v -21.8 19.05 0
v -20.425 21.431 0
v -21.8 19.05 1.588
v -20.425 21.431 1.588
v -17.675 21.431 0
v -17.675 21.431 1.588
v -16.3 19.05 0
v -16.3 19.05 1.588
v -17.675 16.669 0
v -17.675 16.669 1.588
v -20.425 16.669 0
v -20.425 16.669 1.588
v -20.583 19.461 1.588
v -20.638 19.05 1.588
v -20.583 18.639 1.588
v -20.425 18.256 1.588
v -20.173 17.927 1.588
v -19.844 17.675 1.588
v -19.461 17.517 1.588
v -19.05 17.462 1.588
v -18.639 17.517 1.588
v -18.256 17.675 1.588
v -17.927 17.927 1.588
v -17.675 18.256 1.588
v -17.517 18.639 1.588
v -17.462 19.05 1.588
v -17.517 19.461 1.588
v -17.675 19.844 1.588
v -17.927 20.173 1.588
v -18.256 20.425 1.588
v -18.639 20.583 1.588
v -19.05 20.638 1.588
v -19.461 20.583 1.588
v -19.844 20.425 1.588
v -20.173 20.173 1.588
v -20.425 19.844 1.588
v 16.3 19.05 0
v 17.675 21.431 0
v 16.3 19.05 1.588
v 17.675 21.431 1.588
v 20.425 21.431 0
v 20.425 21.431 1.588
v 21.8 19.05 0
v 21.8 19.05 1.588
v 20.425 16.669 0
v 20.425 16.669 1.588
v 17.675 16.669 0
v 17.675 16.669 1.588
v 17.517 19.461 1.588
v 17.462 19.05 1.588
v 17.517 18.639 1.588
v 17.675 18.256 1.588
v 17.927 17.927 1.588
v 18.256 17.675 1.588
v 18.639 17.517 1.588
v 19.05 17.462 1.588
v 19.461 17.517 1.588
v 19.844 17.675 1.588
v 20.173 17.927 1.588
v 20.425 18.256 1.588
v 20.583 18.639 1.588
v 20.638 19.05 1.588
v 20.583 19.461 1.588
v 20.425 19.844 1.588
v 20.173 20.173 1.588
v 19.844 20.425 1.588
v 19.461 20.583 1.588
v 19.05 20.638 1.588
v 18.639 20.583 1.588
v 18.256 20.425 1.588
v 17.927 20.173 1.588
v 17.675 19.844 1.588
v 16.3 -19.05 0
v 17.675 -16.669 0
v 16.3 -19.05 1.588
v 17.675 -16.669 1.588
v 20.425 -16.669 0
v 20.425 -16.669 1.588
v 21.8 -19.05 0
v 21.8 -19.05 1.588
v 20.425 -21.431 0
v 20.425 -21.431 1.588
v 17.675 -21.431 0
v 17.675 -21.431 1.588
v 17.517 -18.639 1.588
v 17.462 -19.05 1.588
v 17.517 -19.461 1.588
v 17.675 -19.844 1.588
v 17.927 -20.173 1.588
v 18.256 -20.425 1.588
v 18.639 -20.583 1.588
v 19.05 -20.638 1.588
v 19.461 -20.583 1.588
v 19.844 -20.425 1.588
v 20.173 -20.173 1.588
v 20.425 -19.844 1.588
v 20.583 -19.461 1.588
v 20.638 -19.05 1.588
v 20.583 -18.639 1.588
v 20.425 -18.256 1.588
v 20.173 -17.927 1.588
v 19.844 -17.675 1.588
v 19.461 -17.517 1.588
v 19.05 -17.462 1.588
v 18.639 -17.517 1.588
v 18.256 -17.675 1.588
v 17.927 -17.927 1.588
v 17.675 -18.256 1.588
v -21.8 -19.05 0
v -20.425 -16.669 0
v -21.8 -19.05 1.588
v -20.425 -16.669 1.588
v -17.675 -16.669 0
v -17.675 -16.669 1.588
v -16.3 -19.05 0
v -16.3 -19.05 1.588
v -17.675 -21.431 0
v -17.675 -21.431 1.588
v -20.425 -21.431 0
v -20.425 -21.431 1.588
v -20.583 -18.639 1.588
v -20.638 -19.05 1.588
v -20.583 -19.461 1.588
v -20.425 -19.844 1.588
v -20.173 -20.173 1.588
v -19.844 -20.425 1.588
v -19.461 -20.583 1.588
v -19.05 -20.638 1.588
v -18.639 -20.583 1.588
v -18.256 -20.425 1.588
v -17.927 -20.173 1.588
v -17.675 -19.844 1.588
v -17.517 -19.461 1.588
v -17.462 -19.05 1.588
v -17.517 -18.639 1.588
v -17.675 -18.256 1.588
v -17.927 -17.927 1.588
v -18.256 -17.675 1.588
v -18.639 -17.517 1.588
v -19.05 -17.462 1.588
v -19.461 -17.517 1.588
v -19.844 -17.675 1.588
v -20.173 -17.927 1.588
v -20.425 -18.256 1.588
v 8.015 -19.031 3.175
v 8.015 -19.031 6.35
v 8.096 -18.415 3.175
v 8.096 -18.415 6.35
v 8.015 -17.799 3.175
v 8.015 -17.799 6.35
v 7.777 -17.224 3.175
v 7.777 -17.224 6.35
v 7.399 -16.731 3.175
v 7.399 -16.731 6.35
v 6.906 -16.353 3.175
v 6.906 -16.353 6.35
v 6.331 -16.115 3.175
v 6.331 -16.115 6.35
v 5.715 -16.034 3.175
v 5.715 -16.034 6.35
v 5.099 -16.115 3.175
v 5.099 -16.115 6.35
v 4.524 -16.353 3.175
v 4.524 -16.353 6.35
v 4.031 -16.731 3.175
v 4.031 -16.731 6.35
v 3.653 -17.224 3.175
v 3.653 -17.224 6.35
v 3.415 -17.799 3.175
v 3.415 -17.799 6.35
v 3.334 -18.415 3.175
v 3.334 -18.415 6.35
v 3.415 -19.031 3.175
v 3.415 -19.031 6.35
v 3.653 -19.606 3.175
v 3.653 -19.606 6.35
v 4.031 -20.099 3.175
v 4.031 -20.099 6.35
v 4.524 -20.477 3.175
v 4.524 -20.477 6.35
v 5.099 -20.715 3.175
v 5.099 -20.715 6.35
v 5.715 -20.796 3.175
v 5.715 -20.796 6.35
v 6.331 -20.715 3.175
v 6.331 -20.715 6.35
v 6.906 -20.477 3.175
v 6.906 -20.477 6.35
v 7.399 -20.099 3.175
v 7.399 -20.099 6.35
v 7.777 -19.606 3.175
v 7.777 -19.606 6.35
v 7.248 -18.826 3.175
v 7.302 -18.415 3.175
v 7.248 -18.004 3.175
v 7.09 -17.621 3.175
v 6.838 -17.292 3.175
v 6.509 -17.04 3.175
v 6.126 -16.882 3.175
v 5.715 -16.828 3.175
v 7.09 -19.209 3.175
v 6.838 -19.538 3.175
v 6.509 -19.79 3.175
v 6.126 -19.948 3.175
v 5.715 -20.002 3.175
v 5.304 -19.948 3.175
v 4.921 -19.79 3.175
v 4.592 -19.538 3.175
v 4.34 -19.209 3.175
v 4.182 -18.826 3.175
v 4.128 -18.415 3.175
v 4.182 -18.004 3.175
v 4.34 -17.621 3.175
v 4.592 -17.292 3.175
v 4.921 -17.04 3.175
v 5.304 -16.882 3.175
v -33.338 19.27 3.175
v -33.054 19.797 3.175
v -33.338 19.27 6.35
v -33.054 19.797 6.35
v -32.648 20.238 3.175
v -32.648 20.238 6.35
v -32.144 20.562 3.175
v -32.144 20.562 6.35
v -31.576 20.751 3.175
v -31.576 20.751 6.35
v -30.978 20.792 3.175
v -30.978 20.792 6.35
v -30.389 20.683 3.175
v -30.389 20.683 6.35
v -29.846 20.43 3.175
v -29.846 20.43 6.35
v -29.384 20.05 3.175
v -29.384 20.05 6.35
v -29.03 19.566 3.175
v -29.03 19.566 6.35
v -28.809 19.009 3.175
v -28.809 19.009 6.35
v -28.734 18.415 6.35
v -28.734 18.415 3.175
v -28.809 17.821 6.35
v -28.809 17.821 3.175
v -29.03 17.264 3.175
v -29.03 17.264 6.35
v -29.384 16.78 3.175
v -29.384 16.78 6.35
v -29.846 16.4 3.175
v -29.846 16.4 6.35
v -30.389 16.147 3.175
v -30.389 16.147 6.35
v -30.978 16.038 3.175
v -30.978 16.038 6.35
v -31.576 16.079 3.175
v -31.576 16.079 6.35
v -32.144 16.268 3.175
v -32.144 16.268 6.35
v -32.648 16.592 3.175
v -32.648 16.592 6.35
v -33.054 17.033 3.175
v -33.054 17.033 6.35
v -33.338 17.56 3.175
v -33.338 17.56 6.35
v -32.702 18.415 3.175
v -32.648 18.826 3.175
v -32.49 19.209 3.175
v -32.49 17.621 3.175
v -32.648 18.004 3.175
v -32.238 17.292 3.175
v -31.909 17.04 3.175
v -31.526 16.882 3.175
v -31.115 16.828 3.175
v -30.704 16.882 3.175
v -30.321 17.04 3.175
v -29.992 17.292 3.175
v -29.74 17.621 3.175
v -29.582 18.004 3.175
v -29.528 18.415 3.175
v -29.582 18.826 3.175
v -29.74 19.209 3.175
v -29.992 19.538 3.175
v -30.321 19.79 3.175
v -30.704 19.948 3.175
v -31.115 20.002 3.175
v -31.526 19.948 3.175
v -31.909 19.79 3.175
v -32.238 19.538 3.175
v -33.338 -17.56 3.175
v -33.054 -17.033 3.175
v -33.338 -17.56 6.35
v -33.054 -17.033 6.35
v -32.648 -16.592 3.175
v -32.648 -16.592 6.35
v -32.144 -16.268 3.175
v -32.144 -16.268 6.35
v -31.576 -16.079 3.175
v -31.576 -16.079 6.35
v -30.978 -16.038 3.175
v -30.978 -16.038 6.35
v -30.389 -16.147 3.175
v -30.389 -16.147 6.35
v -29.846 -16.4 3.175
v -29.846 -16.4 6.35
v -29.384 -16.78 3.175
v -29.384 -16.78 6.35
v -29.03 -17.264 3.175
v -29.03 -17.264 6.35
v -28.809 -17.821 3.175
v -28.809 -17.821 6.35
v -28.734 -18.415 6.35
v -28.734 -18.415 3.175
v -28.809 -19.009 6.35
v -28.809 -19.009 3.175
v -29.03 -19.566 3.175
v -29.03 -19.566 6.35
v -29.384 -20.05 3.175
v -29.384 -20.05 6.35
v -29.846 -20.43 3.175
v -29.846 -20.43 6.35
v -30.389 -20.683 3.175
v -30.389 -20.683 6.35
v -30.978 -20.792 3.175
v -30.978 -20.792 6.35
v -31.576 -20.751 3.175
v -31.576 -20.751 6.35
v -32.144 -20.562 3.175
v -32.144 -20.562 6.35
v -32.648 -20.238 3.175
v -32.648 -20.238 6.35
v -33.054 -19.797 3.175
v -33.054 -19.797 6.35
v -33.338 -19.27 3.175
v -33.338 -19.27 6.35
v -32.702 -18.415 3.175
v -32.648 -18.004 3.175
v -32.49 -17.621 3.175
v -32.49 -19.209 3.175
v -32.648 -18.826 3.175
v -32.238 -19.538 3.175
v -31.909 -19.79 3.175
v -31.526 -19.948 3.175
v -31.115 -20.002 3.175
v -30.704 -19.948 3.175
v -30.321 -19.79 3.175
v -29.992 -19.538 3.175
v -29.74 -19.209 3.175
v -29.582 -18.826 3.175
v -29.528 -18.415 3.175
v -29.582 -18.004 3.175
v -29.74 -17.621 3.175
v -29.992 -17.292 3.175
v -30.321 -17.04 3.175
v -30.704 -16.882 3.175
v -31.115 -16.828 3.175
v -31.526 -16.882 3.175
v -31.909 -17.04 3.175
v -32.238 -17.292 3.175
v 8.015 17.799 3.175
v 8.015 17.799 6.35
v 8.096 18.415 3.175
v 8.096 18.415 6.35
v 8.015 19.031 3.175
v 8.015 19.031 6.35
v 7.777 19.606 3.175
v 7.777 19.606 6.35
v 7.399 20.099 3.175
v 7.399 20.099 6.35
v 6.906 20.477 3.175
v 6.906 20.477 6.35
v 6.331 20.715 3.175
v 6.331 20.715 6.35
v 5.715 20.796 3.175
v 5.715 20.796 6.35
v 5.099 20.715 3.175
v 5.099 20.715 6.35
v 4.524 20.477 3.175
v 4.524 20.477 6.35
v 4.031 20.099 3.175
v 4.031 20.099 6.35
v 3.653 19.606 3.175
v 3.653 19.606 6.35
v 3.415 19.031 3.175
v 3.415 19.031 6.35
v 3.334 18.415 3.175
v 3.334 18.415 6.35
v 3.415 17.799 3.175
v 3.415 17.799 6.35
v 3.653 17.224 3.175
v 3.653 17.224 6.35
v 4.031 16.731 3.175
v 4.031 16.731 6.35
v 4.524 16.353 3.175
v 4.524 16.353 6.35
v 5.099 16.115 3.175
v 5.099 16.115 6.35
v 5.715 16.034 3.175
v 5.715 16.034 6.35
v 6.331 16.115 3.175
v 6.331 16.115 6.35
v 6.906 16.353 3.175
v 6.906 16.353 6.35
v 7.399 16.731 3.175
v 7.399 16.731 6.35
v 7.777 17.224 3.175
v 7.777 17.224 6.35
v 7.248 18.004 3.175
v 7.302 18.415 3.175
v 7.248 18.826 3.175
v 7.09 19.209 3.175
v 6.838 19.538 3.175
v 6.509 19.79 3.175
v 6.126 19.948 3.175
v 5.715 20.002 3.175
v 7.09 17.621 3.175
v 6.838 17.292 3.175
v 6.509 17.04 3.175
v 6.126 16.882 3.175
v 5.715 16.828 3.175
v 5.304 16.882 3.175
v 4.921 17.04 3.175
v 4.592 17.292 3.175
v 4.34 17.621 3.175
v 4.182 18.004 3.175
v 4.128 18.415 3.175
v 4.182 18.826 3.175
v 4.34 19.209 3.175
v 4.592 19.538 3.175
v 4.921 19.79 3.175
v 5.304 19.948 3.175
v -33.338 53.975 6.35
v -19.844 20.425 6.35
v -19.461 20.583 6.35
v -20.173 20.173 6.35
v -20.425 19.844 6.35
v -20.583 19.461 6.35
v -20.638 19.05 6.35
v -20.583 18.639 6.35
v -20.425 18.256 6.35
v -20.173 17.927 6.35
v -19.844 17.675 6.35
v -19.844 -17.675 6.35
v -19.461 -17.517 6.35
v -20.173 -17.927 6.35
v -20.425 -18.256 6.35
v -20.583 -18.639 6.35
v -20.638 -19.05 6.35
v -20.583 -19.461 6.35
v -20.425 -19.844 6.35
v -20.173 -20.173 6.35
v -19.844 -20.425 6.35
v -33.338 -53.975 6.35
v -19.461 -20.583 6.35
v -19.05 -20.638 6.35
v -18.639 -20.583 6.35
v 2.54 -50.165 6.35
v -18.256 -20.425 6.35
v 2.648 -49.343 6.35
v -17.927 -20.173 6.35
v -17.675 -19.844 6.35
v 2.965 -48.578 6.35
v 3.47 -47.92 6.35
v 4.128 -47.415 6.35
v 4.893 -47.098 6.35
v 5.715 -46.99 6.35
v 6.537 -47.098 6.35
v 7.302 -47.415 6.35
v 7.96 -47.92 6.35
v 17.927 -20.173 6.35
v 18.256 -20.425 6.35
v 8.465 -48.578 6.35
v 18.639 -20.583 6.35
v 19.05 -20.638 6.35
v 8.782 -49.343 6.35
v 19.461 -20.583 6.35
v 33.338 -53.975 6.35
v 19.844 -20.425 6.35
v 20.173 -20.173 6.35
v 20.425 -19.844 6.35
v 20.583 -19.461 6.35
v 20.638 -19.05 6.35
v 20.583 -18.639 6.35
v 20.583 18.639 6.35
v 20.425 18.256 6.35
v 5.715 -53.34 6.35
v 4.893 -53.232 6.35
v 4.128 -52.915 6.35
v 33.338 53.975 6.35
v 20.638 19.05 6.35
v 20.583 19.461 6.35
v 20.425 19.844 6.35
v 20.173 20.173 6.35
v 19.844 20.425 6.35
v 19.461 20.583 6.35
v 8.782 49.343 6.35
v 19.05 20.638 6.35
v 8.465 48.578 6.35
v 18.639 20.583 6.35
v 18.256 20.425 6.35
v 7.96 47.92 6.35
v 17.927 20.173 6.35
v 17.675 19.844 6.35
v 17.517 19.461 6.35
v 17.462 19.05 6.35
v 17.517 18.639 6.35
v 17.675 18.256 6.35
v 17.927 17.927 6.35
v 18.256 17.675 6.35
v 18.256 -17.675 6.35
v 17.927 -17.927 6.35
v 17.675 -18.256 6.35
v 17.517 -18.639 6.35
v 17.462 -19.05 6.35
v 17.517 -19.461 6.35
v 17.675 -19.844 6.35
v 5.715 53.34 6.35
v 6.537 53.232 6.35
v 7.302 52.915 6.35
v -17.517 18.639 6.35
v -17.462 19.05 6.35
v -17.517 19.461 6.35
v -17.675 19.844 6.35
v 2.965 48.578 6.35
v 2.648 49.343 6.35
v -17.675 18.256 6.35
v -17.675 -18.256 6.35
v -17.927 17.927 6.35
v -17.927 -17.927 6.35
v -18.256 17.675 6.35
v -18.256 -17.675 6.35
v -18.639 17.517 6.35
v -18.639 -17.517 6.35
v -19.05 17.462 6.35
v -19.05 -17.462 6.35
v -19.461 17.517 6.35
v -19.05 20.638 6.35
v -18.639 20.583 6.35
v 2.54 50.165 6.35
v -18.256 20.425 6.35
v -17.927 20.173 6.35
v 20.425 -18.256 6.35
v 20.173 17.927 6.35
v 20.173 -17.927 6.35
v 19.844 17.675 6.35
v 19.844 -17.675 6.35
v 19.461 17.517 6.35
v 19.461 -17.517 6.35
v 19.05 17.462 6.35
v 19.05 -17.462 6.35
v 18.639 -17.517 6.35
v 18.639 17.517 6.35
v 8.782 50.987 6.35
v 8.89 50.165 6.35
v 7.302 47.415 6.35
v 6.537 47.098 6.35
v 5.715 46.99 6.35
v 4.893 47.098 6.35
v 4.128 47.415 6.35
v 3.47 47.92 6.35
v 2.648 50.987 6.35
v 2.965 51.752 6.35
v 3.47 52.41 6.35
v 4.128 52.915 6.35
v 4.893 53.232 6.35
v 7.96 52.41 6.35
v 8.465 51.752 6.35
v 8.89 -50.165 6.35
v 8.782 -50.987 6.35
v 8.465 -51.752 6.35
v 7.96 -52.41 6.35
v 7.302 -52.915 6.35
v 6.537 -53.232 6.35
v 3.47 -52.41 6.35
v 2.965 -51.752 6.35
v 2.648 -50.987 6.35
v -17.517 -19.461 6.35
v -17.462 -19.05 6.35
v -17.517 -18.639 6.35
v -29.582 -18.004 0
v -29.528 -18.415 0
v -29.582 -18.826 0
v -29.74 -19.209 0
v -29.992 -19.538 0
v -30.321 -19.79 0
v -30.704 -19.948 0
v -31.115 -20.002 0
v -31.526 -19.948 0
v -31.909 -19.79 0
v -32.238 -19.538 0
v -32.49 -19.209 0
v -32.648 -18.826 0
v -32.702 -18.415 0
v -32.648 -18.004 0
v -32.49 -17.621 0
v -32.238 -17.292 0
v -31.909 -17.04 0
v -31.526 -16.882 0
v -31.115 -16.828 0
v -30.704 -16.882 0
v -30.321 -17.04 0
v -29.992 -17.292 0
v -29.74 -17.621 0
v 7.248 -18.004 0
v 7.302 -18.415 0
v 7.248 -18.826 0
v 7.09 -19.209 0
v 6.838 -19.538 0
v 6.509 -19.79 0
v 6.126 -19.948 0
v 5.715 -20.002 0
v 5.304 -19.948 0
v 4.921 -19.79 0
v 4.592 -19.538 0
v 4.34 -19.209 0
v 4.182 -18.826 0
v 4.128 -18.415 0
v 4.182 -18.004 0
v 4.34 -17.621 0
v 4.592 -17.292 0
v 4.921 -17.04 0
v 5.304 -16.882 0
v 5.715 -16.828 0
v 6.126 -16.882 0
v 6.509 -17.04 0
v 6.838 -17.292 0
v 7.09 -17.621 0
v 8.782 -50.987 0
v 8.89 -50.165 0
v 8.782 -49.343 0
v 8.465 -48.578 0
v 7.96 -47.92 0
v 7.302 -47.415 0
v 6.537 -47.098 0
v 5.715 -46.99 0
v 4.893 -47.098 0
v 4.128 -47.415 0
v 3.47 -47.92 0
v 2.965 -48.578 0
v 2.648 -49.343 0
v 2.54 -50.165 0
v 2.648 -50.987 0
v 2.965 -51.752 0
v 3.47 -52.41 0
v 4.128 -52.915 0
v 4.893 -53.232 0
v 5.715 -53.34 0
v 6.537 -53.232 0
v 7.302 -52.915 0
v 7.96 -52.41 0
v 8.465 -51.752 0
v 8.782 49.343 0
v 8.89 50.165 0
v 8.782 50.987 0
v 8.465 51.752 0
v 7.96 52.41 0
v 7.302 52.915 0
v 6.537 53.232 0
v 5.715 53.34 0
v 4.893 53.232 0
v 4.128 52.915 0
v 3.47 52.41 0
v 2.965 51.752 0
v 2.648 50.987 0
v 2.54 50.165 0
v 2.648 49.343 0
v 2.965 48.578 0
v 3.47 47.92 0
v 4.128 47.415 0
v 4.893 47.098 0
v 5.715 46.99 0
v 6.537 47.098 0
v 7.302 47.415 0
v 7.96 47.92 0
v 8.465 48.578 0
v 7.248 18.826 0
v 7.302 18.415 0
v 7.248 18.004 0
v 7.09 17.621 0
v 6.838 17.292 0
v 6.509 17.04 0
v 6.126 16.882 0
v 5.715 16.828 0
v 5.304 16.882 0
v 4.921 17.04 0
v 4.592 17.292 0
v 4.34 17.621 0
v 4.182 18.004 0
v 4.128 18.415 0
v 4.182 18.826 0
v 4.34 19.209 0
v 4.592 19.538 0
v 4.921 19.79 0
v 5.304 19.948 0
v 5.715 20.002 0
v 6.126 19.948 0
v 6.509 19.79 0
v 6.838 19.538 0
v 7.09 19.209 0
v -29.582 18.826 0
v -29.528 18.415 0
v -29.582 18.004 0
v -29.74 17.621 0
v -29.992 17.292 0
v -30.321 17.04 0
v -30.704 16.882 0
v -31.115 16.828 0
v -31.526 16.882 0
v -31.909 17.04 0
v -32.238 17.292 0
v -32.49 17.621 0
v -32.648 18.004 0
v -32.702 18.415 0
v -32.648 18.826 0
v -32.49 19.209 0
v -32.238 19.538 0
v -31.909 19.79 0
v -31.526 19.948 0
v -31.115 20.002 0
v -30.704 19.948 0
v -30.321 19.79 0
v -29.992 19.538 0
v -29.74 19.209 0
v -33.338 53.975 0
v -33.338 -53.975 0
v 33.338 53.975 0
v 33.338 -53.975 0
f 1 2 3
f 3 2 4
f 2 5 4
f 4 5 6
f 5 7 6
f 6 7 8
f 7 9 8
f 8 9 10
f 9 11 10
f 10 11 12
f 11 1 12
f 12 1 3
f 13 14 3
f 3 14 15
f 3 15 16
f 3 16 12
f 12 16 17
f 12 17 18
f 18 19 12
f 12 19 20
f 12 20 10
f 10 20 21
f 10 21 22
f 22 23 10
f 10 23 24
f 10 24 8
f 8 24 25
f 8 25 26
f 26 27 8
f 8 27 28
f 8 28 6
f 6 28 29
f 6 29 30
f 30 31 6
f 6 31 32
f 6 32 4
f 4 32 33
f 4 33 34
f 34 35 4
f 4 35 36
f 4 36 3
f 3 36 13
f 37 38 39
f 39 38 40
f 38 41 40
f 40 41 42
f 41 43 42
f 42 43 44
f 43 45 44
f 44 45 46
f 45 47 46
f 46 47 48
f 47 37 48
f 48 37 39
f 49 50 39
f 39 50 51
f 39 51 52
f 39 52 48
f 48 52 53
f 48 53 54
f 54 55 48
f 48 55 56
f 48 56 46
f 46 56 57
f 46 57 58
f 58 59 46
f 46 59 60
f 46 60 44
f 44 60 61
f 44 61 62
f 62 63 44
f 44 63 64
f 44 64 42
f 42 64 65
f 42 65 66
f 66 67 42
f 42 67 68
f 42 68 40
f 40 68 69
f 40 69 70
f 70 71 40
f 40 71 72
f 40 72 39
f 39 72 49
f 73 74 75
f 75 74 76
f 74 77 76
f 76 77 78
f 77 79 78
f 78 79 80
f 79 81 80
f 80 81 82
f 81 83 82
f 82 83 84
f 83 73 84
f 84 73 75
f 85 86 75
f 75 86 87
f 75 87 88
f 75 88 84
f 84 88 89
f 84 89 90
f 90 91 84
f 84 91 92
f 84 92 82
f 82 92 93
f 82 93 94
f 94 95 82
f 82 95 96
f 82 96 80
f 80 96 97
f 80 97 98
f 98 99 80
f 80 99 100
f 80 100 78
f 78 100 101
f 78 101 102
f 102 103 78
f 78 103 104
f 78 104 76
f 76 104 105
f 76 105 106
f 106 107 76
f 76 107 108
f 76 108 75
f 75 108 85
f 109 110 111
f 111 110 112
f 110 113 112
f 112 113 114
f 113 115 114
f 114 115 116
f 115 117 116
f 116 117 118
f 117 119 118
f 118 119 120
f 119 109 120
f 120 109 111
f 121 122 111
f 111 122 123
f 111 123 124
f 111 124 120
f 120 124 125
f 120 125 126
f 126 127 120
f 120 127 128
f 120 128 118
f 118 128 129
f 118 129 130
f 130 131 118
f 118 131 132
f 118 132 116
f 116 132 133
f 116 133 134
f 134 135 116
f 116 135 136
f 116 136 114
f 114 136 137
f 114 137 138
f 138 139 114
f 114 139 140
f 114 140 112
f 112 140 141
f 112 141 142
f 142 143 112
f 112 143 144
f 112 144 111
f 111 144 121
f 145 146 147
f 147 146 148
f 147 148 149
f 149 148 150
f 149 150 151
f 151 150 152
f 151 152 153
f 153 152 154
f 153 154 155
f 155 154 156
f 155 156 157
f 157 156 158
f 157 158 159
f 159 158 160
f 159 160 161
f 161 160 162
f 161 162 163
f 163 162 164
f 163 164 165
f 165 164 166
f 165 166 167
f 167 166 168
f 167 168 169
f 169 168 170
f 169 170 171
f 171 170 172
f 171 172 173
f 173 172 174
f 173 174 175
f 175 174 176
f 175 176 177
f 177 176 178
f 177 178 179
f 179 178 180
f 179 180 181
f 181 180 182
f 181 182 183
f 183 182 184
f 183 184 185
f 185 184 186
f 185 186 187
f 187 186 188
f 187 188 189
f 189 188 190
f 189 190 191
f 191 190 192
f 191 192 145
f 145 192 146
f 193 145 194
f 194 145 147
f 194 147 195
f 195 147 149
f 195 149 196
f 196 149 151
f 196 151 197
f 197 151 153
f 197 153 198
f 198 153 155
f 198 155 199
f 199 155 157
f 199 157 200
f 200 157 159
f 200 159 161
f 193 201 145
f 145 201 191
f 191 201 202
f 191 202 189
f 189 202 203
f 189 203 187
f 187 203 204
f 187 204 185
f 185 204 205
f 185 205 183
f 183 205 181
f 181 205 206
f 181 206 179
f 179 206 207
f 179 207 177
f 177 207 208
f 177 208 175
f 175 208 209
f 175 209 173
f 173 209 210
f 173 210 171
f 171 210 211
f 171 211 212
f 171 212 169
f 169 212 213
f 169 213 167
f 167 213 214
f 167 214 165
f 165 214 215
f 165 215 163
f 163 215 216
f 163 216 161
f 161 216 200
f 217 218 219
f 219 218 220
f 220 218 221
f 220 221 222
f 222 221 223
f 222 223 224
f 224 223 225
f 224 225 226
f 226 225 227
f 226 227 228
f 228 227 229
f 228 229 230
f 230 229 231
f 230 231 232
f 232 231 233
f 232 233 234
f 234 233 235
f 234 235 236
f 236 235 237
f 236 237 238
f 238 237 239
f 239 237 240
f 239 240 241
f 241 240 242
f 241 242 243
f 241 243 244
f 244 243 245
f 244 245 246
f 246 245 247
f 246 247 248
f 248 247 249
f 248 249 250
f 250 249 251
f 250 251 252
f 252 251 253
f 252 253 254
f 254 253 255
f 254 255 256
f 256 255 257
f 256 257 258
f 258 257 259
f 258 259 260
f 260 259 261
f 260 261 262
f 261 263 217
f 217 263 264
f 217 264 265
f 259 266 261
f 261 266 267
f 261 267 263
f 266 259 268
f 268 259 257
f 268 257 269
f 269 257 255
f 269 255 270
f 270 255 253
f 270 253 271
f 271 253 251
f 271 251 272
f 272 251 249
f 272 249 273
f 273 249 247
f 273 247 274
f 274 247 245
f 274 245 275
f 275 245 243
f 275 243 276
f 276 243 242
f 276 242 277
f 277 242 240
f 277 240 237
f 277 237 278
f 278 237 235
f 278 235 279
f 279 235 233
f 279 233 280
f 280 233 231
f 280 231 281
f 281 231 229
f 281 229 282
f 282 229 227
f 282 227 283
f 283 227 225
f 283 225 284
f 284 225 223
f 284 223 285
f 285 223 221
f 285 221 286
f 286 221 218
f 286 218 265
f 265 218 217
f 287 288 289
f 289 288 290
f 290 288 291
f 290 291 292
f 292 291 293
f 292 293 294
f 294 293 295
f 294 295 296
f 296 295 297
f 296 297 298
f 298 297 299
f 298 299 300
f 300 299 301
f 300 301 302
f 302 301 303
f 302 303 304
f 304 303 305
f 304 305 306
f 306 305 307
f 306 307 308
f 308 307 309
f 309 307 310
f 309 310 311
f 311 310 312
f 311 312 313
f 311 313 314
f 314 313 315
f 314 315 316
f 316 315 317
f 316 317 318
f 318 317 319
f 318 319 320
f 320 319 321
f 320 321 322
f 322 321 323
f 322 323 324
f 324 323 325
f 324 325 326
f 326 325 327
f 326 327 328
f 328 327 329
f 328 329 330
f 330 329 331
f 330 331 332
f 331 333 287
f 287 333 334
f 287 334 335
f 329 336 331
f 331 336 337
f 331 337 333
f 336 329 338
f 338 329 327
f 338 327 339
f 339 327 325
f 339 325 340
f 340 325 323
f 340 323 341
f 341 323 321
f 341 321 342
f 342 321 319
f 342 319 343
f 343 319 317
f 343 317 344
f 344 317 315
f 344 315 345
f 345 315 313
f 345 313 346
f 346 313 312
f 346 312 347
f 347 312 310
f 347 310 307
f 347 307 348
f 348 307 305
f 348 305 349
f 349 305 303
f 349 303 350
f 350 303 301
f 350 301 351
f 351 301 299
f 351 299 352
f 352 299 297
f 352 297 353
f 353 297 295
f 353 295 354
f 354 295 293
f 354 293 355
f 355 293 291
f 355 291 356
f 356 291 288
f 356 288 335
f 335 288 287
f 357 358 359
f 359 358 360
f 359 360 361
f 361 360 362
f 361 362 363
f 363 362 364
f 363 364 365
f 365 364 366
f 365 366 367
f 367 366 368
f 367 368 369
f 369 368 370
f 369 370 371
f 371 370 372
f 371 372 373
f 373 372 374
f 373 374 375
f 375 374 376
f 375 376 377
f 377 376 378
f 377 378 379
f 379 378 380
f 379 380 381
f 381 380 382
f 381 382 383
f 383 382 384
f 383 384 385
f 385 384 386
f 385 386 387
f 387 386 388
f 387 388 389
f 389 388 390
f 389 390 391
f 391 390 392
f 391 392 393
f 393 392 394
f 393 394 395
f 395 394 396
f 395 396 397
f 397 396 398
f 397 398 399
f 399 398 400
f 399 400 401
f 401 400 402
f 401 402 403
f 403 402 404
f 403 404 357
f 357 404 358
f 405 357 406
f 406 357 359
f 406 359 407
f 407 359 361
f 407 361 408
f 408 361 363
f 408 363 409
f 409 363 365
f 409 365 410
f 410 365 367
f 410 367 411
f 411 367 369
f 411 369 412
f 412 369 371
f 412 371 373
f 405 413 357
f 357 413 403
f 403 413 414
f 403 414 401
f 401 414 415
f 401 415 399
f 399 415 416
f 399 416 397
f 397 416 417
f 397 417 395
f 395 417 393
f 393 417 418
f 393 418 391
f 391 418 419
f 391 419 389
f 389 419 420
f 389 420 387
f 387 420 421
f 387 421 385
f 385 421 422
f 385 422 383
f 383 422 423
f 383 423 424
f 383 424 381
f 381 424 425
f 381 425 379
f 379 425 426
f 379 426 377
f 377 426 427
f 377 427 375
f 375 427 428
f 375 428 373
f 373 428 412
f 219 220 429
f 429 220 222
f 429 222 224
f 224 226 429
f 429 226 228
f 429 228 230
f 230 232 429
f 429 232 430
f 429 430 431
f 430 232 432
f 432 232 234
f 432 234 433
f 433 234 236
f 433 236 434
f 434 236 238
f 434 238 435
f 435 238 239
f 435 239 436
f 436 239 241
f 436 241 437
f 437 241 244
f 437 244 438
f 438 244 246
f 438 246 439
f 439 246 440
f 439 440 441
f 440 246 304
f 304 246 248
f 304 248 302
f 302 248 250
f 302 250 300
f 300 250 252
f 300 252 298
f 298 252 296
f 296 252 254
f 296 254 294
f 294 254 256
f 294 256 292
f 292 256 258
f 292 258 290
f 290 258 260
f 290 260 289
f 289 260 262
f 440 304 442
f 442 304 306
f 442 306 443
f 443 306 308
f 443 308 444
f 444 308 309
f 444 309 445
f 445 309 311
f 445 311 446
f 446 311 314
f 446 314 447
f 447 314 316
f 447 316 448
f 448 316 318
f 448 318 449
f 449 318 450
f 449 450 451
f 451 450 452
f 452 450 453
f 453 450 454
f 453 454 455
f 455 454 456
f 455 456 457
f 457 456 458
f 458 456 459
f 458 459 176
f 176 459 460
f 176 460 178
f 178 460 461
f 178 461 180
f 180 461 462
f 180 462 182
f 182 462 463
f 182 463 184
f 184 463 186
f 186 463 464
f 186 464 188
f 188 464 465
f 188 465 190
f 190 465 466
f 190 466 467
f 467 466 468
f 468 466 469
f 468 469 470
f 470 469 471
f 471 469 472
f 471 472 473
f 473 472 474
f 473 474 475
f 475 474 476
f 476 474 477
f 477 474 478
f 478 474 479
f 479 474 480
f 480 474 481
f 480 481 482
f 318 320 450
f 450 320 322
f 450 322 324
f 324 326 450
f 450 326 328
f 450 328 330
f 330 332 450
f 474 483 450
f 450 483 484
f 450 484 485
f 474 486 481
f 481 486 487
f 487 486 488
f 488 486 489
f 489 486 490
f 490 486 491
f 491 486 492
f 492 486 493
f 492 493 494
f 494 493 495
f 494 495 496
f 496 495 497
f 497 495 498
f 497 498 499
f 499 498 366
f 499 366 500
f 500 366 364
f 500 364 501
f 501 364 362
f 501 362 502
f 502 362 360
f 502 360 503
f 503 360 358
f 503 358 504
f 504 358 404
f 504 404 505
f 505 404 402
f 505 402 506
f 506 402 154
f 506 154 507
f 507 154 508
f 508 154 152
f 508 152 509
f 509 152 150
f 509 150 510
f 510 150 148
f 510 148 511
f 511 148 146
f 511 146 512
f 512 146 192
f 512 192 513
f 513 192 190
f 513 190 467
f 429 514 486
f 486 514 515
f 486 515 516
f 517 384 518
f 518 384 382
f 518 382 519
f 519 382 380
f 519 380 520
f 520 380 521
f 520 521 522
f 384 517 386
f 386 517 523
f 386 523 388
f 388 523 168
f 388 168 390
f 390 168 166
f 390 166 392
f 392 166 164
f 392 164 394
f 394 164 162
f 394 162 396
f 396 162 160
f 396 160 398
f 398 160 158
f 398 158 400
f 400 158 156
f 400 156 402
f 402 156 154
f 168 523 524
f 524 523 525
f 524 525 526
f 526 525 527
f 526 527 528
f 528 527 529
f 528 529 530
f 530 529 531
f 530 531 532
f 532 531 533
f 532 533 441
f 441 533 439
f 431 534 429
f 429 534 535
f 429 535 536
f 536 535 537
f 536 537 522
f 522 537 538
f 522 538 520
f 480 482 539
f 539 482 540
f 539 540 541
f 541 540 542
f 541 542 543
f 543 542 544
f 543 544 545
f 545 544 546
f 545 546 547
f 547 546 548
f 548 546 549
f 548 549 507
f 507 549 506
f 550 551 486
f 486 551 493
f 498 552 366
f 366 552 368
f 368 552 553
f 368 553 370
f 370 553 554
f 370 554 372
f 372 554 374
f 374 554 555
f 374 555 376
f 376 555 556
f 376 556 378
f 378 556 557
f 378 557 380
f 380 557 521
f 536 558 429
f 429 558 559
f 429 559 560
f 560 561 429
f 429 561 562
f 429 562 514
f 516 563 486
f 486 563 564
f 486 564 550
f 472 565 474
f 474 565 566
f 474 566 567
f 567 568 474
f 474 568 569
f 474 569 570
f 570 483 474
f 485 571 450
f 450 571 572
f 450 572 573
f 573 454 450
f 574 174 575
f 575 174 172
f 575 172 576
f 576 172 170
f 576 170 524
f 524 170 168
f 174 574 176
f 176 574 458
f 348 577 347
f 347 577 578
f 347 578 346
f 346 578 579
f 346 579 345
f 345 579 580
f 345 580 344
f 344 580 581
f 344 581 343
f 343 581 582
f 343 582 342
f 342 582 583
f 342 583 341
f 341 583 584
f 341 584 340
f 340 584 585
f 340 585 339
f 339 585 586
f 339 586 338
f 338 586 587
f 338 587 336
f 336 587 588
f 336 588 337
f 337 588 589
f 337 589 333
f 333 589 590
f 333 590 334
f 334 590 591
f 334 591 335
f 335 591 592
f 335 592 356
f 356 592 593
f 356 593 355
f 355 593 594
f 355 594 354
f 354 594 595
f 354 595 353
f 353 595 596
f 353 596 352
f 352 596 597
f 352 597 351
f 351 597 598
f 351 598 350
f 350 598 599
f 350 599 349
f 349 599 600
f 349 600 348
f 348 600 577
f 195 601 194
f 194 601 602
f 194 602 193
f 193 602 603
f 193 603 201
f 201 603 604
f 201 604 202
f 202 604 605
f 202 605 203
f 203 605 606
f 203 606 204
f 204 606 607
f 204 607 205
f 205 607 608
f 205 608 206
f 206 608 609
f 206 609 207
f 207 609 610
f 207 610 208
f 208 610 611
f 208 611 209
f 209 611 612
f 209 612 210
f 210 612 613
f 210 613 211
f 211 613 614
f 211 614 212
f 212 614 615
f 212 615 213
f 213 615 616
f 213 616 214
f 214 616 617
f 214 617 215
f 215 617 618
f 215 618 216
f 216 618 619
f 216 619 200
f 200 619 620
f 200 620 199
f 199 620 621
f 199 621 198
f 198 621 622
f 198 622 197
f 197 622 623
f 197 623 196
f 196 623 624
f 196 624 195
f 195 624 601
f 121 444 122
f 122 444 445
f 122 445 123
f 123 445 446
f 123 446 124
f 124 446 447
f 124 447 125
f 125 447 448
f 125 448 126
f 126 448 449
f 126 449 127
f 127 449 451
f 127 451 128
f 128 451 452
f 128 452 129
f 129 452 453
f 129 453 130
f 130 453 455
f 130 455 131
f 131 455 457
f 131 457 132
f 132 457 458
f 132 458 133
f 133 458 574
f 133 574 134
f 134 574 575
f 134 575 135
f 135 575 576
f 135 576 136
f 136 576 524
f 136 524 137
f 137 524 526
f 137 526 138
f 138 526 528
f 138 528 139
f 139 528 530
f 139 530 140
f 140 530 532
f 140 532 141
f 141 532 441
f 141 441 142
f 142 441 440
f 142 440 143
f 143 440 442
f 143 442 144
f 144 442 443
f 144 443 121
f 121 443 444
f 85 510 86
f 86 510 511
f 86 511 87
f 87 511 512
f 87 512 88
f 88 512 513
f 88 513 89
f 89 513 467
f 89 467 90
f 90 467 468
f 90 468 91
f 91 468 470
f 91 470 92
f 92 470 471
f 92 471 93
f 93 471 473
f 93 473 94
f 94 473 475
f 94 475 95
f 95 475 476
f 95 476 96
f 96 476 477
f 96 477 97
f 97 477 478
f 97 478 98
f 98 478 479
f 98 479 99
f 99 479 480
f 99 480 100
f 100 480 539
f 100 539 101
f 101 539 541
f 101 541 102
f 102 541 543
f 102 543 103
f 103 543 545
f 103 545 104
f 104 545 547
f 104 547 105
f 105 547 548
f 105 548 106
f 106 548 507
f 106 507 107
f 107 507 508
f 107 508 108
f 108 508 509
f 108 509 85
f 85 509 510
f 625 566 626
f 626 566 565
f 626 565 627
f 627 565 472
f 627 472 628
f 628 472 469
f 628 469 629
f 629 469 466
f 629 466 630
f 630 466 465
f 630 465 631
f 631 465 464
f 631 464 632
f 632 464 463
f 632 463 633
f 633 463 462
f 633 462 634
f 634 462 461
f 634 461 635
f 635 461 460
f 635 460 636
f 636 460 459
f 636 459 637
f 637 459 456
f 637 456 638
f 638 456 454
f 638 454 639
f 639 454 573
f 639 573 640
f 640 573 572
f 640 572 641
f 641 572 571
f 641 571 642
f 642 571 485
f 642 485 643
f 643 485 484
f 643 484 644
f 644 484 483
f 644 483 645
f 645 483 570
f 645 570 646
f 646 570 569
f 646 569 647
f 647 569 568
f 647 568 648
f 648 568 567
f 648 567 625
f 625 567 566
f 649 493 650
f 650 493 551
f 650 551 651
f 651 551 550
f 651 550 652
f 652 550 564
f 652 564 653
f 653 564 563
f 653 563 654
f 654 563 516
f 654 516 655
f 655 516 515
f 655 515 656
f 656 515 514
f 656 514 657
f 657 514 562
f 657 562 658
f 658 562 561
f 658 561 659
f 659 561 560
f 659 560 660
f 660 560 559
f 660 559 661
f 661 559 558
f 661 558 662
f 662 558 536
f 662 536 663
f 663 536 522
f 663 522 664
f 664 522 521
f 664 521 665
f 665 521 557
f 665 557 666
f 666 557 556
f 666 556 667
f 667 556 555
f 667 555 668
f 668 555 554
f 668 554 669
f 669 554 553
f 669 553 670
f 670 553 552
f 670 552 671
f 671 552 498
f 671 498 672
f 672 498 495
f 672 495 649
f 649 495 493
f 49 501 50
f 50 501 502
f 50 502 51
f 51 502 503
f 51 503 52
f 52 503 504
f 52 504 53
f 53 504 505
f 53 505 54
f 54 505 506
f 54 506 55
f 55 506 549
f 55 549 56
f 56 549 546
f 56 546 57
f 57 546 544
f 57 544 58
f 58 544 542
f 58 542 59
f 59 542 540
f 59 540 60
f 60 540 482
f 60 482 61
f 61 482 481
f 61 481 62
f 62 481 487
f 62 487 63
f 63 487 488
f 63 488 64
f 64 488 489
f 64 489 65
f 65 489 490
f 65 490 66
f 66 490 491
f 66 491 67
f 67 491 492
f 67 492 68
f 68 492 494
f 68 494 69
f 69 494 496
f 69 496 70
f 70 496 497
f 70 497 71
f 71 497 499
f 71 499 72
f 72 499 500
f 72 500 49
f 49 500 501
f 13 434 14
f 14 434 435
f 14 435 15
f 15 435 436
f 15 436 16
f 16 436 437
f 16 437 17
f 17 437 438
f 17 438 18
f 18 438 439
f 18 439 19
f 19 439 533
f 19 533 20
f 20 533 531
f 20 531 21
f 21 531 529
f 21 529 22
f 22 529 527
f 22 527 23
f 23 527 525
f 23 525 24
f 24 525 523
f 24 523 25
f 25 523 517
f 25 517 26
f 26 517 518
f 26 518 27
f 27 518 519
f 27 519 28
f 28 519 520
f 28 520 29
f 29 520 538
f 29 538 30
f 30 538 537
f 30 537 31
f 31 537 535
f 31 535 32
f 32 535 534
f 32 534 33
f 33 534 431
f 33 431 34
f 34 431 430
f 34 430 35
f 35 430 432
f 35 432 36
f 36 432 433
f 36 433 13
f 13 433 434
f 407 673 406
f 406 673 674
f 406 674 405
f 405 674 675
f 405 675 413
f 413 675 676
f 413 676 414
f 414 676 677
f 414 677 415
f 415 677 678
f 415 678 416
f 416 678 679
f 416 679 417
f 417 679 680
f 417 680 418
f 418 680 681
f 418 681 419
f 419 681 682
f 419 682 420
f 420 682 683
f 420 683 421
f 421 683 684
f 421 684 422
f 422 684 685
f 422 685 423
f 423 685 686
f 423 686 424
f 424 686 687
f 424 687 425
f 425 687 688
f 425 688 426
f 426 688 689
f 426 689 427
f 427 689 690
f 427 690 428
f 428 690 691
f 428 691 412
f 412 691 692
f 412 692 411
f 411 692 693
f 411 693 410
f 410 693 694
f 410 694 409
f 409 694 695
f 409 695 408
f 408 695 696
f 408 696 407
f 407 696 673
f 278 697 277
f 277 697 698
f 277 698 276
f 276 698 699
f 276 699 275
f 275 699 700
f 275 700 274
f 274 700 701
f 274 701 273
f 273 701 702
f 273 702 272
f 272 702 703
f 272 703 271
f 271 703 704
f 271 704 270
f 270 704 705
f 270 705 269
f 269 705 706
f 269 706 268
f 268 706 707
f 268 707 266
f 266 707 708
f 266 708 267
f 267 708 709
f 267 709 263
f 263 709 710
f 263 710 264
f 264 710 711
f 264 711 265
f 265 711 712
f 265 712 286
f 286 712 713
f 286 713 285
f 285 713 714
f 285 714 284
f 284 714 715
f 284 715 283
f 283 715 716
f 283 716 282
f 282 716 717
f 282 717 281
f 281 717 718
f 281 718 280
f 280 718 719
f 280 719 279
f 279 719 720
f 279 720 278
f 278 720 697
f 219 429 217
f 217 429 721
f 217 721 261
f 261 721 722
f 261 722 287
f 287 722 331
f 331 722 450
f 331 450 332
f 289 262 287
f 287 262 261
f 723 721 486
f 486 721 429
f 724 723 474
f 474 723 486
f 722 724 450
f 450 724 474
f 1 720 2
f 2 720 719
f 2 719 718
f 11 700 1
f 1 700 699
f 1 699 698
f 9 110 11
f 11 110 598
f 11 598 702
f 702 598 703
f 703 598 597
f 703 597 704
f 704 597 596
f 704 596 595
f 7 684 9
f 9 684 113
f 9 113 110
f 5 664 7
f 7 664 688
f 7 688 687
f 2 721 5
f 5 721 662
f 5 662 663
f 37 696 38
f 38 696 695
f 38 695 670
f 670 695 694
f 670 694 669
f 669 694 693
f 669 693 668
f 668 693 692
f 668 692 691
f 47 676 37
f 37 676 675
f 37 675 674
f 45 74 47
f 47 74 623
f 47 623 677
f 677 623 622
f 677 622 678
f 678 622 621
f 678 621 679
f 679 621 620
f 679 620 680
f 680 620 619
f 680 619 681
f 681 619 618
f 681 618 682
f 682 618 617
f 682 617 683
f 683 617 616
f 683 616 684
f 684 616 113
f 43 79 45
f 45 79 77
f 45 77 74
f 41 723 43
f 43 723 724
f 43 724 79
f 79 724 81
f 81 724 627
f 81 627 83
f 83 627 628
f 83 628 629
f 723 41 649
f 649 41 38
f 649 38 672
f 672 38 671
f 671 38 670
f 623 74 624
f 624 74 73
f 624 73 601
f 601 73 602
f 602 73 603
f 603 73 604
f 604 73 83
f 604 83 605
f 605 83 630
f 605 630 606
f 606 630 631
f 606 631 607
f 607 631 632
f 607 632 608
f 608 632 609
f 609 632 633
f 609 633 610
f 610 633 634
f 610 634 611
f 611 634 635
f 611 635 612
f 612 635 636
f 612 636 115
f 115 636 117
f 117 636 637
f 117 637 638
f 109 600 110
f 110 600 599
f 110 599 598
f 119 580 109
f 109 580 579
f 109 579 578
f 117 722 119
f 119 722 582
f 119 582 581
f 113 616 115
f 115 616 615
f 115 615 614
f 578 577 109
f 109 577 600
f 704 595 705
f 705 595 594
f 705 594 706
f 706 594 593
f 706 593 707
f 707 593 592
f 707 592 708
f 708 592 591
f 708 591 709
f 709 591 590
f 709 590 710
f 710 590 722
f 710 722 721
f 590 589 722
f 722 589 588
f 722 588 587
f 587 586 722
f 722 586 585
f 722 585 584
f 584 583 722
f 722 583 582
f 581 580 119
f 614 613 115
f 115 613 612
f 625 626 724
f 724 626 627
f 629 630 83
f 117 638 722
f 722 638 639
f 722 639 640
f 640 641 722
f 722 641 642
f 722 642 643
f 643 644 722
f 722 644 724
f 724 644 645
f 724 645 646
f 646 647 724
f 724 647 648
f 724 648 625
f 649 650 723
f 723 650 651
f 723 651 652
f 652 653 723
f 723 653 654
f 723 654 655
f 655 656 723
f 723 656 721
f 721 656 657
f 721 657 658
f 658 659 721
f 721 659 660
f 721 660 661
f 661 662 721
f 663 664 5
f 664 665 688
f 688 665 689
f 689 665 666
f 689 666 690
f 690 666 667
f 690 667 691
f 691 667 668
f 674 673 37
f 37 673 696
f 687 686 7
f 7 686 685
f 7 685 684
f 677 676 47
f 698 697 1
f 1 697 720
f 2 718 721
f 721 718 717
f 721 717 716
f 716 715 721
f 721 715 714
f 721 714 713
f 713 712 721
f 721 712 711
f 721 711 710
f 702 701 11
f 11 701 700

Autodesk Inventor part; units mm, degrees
ref_plane "YZ Plane" through (0, 0, 0) normal (1, 0, 0) x (0, 1, 0)
ref_plane "XZ Plane" through (0, 0, 0) normal (0, 1, 0) x (-1, 0, 0)
ref_plane "XY Plane" through (0, 0, 0) normal (0, 0, 1) x (1, 0, 0)
sketch "Sketch1" plane through (0, 0, 0) normal (0, 0, 1) x (1, 0, 0)
  line L0 (-33.3375, -53.975) -> (33.3375, -53.975)
  line L1 (33.3375, -53.975) -> (33.3375, 53.975)
  line L2 (33.3375, 53.975) -> (-33.3375, 53.975)
  line L3 (-33.3375, 53.975) -> (-33.3375, -53.975)
  line L4 (-33.3375, -53.975) -> (33.3375, 53.975) construction
  line L5 (33.3375, -53.975) -> (-33.3375, 53.975) construction
  point P0 (0, 0)
  dimension "d0" = 66.675
  dimension "d1" = 107.95
extrude "Extrusion1" add sketch "Sketch1" along normal blind 6.35
sketch "Sketch3" plane through (0, 0, 6.35) normal (0, 0, 1) x (1, 0, 0)
  line L0 (-19.05, -19.05) -> (19.05, -19.05)
  line L1 (19.05, -19.05) -> (19.05, 19.05)
  line L2 (19.05, 19.05) -> (-19.05, 19.05)
  line L3 (-19.05, 19.05) -> (-19.05, -19.05)
  line L4 (-19.05, -19.05) -> (19.05, 19.05) construction
  line L5 (19.05, -19.05) -> (-19.05, 19.05) construction
  line L6 (0, 0) -> (-12.7, 0)
  line L7 (-31.115, -18.415) -> (5.715, -18.415)
  line L8 (5.715, -18.415) -> (5.715, 18.415)
  line L9 (5.715, 18.415) -> (-31.115, 18.415)
  line L10 (-31.115, 18.415) -> (-31.115, -18.415)
  line L11 (-31.115, -18.415) -> (5.715, 18.415) construction
  line L12 (5.715, -18.415) -> (-31.115, 18.415) construction
  circle A0 centre (19.05, 19.05) radius 1.5875
  circle A1 centre (19.05, -19.05) radius 1.5875
  circle A2 centre (-19.05, 19.05) radius 1.5875
  circle A3 centre (-19.05, -19.05) radius 1.5875
  circle A4 centre (5.715, 18.415) radius 1.5875
  circle A5 centre (5.715, -18.415) radius 1.5875
  circle A6 centre (-31.115, 18.415) radius 1.5875
  circle A7 centre (-31.115, -18.415) radius 1.5875
  line L13 (5.715, 18.415) -> (5.715, 50.165)
  circle A8 centre (5.715, 50.165) radius 3.175
  line L14 (5.715, -18.415) -> (5.715, -50.165)
  circle A9 centre (5.715, -50.165) radius 3.175
  dimension "d11" = 38.1
  dimension "d12" = 38.1
  dimension "d13" = 12.7
  dimension "d14" = 36.83
  dimension "d15" = 36.83
  dimension "d16" = 3.175
  dimension "d17" = 3.175
  dimension "d18" = 3.175
  dimension "d19" = 3.175
  dimension "d20" = 3.175
  dimension "d21" = 3.175
  dimension "d22" = 3.175
  dimension "d23" = 3.175
  dimension "d24" = 31.75
  dimension "d25" = 6.35
  dimension "d26" = 31.75
  dimension "d27" = 6.35
extrude "Extrusion2" cut sketch "Sketch3" against normal blind 6.35 contours L3 L7 A3 L0 | L0 A3 L7 L3 | A8 | A9 | L7 A3 L3 | L3 A3 L7 | A5 L7 L14 L0 | L0 L14 A5 | L14 L8 A5 L0 | L0 A5 L14 | A5 L8 L7 | A7 L10 L7 | L7 L10 A7 | A2 L9 L3 | L3 L9 A2 | L9 A2 L2 L3 | L3 L2 A2 L9 | A1 L1 L0 | L0 L1 A1 | A4 L9 L8 | L8 L13 L2 A4 | A6 L9 L10 | L10 L9 A6 | A4 L2 L13 L9 | A4 L13 L2 | A0 L2 L1 | L1 L2 A0 | L13 A4 L2
sketch "Sketch4" plane through (0, 0, 6.35) normal (0, 0, 1) x (1, 0, 0)
  circle A0 centre (-31.115, 18.415) radius 1.5875 projected
  circle A1 centre (-31.115, -18.415) radius 1.5875 projected
  circle A2 centre (5.715, -18.415) radius 1.5875 projected
  circle A3 centre (5.715, 18.415) radius 1.5875 projected
  circle A4 centre (-31.115, 18.415) radius 2.3812
  circle A5 centre (-31.115, -18.415) radius 2.3813
  circle A6 centre (5.715, -18.415) radius 2.3812
  circle A7 centre (5.715, 18.415) radius 2.3813
  point P0 (0, 0)
  dimension "d30" = 4.7625
  dimension "d31" = 4.7625
  dimension "d32" = 4.7625
  dimension "d33" = 4.7625
extrude "Extrusion3" cut sketch "Sketch4" against normal blind 3.175
sketch "Sketch5" plane through (0, 0, 0) normal (0, 0, -1) x (-1, 0, 0)
  circle A0 centre (19.05, 19.05) radius 1.5875 projected
  circle A1 centre (19.05, -19.05) radius 1.5875 projected
  circle A2 centre (-19.05, -19.05) radius 1.5875 projected
  circle A3 centre (-19.05, 19.05) radius 1.5875 projected
  line L0 (-16.3004, 19.05) -> (-17.6752, 16.6687)
  line L1 (-17.6752, 16.6687) -> (-20.4248, 16.6687)
  line L2 (-20.4248, 16.6687) -> (-21.7996, 19.05)
  line L3 (-21.7996, 19.05) -> (-20.4248, 21.4312)
  line L4 (-20.4248, 21.4312) -> (-17.6752, 21.4313)
  line L5 (-17.6752, 21.4313) -> (-16.3004, 19.05)
  line L6 (-33.3375, 53.975) -> (33.3375, 53.975) projected
  line L7 (-33.3375, -53.975) -> (-33.3375, 53.975) projected
  line L8 (-16.3004, -19.05) -> (-17.6752, -21.4313)
  line L9 (-17.6752, -21.4313) -> (-20.4248, -21.4313)
  line L10 (-20.4248, -21.4313) -> (-21.7996, -19.05)
  line L11 (-21.7996, -19.05) -> (-20.4248, -16.6688)
  line L12 (-20.4248, -16.6688) -> (-17.6752, -16.6687)
  line L13 (-17.6752, -16.6687) -> (-16.3004, -19.05)
  line L14 (21.7996, 19.05) -> (20.4248, 16.6687)
  line L15 (20.4248, 16.6687) -> (17.6752, 16.6687)
  line L16 (17.6752, 16.6687) -> (16.3004, 19.05)
  line L17 (16.3004, 19.05) -> (17.6752, 21.4312)
  line L18 (17.6752, 21.4312) -> (20.4248, 21.4312)
  line L19 (20.4248, 21.4312) -> (21.7996, 19.05)
  line L20 (21.7996, -19.05) -> (20.4248, -21.4313)
  line L21 (20.4248, -21.4313) -> (17.6752, -21.4313)
  line L22 (17.6752, -21.4313) -> (16.3004, -19.05)
  line L23 (16.3004, -19.05) -> (17.6752, -16.6688)
  line L24 (17.6752, -16.6688) -> (20.4248, -16.6688)
  line L25 (20.4248, -16.6688) -> (21.7996, -19.05)
  point P0 (0, 0)
  point P1 (-19.05, -19.05)
  point P2 (19.05, 19.05)
  point P3 (19.05, -19.05)
  dimension "d36" = 4.7625
  dimension "d39" = 38.1
  dimension "d42" = 38.1
extrude "Extrusion4" cut sketch "Sketch5" against normal blind 1.5875
properties part number "lidarCamMountv2" material "ABS Plastic"
